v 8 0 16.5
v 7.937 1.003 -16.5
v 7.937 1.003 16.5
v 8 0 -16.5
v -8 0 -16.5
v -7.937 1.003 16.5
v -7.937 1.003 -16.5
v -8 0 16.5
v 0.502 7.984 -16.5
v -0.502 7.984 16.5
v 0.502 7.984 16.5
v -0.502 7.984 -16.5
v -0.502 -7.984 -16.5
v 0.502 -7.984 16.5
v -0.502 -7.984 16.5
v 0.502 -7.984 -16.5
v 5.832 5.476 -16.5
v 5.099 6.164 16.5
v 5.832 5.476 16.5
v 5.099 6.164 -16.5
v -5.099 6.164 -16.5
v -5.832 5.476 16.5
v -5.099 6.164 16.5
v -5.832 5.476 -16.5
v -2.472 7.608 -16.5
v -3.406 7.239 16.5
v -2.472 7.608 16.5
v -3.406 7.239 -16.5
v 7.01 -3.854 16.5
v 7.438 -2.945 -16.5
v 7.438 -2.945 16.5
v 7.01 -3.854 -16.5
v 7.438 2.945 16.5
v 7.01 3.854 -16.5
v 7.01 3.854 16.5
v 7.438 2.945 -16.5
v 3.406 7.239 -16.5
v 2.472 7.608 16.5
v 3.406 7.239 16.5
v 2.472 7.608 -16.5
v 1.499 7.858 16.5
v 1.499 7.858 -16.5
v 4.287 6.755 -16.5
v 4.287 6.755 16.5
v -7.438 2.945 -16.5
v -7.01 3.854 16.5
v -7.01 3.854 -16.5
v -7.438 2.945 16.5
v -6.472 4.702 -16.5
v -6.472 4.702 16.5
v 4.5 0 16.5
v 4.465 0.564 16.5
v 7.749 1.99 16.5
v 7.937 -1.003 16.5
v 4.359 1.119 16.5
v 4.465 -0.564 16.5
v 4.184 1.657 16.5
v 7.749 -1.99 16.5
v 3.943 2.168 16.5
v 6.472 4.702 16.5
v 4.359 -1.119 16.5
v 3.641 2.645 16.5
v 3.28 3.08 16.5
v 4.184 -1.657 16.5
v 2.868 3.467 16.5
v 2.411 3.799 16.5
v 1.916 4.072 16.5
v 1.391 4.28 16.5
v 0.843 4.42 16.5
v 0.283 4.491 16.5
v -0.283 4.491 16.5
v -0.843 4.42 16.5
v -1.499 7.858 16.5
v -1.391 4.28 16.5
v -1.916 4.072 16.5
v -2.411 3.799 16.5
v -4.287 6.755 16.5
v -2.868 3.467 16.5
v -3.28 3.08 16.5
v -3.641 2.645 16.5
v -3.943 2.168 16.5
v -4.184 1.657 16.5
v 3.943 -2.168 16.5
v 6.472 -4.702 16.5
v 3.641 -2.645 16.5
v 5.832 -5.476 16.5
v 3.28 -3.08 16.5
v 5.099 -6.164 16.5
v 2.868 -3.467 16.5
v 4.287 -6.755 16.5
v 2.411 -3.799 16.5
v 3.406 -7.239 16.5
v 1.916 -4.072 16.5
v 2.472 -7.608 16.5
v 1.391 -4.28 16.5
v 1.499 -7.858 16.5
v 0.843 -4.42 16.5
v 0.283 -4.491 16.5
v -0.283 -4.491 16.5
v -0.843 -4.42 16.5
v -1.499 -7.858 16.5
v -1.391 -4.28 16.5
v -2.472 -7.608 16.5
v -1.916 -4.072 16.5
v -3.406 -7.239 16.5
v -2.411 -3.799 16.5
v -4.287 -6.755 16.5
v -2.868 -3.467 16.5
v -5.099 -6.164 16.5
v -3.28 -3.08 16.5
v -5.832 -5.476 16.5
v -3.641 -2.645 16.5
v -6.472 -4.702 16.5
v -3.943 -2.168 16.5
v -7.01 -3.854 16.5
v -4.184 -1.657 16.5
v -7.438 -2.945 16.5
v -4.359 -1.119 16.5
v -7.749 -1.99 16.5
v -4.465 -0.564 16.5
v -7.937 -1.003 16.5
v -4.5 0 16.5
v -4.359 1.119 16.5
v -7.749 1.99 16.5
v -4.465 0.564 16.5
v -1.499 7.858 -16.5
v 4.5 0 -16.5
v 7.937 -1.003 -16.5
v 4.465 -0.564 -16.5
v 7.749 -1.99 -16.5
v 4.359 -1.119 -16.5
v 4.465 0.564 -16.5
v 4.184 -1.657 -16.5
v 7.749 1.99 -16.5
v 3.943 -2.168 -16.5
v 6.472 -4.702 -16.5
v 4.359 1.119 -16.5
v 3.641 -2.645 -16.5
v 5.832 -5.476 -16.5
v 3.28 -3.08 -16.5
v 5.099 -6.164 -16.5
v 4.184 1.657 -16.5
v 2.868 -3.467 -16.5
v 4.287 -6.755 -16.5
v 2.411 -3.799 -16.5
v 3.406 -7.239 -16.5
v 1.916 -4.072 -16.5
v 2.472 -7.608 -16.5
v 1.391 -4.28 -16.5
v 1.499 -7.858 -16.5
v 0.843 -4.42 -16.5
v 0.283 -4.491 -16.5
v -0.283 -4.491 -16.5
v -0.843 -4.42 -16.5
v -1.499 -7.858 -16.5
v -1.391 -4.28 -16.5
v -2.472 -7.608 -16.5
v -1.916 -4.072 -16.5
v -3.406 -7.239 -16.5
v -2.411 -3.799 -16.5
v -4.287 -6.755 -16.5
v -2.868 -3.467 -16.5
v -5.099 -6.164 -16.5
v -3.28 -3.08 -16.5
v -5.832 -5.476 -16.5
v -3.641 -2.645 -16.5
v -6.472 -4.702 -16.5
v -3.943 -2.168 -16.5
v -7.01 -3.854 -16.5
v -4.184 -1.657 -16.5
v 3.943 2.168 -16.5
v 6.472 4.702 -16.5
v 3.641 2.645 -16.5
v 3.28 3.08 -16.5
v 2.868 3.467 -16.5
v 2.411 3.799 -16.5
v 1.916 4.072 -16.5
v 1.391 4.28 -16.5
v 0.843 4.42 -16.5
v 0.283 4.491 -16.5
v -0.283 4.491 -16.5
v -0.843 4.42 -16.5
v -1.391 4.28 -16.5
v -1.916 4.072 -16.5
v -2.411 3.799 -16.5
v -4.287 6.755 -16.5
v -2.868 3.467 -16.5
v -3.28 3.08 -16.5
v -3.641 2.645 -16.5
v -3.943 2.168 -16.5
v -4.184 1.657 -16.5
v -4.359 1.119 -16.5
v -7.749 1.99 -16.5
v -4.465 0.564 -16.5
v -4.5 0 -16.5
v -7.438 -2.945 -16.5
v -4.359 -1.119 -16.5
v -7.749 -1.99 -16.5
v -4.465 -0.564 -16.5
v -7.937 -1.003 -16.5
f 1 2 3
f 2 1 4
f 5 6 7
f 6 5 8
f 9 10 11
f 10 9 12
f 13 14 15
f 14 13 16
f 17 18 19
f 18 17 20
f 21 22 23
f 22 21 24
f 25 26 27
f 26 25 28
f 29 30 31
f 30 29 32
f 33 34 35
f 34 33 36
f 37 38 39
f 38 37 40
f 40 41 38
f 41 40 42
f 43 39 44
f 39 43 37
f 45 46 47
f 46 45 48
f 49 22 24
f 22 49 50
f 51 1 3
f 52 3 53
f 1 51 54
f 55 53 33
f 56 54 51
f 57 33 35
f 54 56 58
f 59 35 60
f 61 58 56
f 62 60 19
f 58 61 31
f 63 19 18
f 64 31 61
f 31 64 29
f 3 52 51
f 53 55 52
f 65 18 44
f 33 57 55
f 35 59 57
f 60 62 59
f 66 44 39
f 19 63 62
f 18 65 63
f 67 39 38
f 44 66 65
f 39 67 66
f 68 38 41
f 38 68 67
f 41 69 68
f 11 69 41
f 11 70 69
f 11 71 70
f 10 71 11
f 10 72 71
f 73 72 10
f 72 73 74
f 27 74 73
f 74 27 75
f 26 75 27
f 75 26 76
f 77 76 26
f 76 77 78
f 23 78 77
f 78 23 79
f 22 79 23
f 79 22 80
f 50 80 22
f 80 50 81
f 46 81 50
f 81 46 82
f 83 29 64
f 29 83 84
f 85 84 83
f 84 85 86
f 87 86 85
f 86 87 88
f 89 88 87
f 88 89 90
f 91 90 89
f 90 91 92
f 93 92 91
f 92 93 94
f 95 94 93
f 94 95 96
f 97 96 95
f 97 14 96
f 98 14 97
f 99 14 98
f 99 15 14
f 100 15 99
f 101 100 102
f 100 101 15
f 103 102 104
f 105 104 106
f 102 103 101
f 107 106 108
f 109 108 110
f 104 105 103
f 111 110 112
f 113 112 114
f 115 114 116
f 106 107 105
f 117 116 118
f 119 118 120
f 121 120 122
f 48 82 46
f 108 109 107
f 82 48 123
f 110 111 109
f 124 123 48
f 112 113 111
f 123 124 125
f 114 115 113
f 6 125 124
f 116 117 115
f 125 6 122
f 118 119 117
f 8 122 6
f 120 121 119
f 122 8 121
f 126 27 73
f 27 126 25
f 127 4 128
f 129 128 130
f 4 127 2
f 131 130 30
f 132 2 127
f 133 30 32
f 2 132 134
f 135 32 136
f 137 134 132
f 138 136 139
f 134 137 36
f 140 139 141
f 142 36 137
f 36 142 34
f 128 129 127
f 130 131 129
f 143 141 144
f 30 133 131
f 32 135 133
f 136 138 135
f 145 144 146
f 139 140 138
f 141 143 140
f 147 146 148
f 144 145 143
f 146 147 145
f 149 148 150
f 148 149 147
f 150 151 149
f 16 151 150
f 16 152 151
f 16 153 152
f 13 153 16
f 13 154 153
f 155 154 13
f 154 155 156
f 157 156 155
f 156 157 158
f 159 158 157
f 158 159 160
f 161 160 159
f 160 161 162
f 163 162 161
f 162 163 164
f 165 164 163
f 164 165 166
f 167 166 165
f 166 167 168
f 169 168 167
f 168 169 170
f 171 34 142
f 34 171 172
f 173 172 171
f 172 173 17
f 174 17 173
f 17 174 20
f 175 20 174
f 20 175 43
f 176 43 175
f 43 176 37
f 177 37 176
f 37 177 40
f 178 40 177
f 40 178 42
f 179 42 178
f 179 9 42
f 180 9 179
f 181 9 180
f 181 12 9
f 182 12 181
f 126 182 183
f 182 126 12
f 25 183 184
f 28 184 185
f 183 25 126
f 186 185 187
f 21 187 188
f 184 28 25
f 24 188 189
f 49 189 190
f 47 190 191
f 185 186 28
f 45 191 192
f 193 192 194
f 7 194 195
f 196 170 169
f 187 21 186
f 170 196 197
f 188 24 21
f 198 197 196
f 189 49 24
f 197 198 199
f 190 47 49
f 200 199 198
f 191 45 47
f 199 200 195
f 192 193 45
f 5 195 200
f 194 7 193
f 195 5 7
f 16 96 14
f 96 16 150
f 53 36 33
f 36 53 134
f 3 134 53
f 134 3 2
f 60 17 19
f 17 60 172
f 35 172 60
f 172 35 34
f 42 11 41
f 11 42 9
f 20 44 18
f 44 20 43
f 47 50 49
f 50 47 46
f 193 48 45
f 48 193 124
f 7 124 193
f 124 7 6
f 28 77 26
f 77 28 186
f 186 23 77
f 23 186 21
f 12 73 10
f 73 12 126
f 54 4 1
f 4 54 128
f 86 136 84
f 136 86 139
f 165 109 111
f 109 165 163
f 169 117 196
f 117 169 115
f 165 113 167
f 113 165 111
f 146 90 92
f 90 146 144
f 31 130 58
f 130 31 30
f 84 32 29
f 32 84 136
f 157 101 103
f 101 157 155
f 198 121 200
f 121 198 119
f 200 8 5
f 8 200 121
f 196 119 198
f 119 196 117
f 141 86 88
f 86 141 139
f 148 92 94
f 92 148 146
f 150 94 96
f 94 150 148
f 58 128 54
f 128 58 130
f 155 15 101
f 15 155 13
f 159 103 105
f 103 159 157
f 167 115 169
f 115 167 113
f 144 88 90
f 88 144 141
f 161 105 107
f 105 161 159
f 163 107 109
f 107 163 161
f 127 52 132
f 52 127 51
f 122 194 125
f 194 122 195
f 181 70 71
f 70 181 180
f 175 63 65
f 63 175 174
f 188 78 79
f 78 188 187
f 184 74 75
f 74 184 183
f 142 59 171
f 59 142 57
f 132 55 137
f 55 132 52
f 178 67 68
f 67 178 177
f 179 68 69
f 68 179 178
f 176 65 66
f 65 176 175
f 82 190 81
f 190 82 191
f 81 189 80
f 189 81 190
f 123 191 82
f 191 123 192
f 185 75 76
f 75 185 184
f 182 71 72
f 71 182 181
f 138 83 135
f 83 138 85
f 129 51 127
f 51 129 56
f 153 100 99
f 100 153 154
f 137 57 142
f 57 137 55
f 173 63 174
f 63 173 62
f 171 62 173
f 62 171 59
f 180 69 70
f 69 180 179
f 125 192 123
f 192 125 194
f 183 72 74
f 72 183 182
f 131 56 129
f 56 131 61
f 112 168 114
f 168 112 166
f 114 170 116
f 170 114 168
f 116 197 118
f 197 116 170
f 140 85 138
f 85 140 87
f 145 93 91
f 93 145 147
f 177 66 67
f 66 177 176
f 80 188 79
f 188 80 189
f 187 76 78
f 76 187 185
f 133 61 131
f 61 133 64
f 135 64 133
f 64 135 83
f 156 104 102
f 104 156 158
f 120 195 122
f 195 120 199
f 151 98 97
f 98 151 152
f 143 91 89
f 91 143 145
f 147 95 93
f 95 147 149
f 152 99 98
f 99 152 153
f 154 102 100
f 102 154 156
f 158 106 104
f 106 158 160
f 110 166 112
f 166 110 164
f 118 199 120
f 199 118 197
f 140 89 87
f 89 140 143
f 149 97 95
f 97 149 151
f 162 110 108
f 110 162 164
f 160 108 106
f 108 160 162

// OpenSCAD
$fn = 50;


difference() {
	union() {
		translate(v = [0, 0, -16.5000000000]) {
			cylinder(h = 33, r = 8.0000000000);
		}
	}
	union() {
		translate(v = [0, 0, -100.0000000000]) {
			cylinder(h = 200, r = 4.5000000000);
		}
	}
}
